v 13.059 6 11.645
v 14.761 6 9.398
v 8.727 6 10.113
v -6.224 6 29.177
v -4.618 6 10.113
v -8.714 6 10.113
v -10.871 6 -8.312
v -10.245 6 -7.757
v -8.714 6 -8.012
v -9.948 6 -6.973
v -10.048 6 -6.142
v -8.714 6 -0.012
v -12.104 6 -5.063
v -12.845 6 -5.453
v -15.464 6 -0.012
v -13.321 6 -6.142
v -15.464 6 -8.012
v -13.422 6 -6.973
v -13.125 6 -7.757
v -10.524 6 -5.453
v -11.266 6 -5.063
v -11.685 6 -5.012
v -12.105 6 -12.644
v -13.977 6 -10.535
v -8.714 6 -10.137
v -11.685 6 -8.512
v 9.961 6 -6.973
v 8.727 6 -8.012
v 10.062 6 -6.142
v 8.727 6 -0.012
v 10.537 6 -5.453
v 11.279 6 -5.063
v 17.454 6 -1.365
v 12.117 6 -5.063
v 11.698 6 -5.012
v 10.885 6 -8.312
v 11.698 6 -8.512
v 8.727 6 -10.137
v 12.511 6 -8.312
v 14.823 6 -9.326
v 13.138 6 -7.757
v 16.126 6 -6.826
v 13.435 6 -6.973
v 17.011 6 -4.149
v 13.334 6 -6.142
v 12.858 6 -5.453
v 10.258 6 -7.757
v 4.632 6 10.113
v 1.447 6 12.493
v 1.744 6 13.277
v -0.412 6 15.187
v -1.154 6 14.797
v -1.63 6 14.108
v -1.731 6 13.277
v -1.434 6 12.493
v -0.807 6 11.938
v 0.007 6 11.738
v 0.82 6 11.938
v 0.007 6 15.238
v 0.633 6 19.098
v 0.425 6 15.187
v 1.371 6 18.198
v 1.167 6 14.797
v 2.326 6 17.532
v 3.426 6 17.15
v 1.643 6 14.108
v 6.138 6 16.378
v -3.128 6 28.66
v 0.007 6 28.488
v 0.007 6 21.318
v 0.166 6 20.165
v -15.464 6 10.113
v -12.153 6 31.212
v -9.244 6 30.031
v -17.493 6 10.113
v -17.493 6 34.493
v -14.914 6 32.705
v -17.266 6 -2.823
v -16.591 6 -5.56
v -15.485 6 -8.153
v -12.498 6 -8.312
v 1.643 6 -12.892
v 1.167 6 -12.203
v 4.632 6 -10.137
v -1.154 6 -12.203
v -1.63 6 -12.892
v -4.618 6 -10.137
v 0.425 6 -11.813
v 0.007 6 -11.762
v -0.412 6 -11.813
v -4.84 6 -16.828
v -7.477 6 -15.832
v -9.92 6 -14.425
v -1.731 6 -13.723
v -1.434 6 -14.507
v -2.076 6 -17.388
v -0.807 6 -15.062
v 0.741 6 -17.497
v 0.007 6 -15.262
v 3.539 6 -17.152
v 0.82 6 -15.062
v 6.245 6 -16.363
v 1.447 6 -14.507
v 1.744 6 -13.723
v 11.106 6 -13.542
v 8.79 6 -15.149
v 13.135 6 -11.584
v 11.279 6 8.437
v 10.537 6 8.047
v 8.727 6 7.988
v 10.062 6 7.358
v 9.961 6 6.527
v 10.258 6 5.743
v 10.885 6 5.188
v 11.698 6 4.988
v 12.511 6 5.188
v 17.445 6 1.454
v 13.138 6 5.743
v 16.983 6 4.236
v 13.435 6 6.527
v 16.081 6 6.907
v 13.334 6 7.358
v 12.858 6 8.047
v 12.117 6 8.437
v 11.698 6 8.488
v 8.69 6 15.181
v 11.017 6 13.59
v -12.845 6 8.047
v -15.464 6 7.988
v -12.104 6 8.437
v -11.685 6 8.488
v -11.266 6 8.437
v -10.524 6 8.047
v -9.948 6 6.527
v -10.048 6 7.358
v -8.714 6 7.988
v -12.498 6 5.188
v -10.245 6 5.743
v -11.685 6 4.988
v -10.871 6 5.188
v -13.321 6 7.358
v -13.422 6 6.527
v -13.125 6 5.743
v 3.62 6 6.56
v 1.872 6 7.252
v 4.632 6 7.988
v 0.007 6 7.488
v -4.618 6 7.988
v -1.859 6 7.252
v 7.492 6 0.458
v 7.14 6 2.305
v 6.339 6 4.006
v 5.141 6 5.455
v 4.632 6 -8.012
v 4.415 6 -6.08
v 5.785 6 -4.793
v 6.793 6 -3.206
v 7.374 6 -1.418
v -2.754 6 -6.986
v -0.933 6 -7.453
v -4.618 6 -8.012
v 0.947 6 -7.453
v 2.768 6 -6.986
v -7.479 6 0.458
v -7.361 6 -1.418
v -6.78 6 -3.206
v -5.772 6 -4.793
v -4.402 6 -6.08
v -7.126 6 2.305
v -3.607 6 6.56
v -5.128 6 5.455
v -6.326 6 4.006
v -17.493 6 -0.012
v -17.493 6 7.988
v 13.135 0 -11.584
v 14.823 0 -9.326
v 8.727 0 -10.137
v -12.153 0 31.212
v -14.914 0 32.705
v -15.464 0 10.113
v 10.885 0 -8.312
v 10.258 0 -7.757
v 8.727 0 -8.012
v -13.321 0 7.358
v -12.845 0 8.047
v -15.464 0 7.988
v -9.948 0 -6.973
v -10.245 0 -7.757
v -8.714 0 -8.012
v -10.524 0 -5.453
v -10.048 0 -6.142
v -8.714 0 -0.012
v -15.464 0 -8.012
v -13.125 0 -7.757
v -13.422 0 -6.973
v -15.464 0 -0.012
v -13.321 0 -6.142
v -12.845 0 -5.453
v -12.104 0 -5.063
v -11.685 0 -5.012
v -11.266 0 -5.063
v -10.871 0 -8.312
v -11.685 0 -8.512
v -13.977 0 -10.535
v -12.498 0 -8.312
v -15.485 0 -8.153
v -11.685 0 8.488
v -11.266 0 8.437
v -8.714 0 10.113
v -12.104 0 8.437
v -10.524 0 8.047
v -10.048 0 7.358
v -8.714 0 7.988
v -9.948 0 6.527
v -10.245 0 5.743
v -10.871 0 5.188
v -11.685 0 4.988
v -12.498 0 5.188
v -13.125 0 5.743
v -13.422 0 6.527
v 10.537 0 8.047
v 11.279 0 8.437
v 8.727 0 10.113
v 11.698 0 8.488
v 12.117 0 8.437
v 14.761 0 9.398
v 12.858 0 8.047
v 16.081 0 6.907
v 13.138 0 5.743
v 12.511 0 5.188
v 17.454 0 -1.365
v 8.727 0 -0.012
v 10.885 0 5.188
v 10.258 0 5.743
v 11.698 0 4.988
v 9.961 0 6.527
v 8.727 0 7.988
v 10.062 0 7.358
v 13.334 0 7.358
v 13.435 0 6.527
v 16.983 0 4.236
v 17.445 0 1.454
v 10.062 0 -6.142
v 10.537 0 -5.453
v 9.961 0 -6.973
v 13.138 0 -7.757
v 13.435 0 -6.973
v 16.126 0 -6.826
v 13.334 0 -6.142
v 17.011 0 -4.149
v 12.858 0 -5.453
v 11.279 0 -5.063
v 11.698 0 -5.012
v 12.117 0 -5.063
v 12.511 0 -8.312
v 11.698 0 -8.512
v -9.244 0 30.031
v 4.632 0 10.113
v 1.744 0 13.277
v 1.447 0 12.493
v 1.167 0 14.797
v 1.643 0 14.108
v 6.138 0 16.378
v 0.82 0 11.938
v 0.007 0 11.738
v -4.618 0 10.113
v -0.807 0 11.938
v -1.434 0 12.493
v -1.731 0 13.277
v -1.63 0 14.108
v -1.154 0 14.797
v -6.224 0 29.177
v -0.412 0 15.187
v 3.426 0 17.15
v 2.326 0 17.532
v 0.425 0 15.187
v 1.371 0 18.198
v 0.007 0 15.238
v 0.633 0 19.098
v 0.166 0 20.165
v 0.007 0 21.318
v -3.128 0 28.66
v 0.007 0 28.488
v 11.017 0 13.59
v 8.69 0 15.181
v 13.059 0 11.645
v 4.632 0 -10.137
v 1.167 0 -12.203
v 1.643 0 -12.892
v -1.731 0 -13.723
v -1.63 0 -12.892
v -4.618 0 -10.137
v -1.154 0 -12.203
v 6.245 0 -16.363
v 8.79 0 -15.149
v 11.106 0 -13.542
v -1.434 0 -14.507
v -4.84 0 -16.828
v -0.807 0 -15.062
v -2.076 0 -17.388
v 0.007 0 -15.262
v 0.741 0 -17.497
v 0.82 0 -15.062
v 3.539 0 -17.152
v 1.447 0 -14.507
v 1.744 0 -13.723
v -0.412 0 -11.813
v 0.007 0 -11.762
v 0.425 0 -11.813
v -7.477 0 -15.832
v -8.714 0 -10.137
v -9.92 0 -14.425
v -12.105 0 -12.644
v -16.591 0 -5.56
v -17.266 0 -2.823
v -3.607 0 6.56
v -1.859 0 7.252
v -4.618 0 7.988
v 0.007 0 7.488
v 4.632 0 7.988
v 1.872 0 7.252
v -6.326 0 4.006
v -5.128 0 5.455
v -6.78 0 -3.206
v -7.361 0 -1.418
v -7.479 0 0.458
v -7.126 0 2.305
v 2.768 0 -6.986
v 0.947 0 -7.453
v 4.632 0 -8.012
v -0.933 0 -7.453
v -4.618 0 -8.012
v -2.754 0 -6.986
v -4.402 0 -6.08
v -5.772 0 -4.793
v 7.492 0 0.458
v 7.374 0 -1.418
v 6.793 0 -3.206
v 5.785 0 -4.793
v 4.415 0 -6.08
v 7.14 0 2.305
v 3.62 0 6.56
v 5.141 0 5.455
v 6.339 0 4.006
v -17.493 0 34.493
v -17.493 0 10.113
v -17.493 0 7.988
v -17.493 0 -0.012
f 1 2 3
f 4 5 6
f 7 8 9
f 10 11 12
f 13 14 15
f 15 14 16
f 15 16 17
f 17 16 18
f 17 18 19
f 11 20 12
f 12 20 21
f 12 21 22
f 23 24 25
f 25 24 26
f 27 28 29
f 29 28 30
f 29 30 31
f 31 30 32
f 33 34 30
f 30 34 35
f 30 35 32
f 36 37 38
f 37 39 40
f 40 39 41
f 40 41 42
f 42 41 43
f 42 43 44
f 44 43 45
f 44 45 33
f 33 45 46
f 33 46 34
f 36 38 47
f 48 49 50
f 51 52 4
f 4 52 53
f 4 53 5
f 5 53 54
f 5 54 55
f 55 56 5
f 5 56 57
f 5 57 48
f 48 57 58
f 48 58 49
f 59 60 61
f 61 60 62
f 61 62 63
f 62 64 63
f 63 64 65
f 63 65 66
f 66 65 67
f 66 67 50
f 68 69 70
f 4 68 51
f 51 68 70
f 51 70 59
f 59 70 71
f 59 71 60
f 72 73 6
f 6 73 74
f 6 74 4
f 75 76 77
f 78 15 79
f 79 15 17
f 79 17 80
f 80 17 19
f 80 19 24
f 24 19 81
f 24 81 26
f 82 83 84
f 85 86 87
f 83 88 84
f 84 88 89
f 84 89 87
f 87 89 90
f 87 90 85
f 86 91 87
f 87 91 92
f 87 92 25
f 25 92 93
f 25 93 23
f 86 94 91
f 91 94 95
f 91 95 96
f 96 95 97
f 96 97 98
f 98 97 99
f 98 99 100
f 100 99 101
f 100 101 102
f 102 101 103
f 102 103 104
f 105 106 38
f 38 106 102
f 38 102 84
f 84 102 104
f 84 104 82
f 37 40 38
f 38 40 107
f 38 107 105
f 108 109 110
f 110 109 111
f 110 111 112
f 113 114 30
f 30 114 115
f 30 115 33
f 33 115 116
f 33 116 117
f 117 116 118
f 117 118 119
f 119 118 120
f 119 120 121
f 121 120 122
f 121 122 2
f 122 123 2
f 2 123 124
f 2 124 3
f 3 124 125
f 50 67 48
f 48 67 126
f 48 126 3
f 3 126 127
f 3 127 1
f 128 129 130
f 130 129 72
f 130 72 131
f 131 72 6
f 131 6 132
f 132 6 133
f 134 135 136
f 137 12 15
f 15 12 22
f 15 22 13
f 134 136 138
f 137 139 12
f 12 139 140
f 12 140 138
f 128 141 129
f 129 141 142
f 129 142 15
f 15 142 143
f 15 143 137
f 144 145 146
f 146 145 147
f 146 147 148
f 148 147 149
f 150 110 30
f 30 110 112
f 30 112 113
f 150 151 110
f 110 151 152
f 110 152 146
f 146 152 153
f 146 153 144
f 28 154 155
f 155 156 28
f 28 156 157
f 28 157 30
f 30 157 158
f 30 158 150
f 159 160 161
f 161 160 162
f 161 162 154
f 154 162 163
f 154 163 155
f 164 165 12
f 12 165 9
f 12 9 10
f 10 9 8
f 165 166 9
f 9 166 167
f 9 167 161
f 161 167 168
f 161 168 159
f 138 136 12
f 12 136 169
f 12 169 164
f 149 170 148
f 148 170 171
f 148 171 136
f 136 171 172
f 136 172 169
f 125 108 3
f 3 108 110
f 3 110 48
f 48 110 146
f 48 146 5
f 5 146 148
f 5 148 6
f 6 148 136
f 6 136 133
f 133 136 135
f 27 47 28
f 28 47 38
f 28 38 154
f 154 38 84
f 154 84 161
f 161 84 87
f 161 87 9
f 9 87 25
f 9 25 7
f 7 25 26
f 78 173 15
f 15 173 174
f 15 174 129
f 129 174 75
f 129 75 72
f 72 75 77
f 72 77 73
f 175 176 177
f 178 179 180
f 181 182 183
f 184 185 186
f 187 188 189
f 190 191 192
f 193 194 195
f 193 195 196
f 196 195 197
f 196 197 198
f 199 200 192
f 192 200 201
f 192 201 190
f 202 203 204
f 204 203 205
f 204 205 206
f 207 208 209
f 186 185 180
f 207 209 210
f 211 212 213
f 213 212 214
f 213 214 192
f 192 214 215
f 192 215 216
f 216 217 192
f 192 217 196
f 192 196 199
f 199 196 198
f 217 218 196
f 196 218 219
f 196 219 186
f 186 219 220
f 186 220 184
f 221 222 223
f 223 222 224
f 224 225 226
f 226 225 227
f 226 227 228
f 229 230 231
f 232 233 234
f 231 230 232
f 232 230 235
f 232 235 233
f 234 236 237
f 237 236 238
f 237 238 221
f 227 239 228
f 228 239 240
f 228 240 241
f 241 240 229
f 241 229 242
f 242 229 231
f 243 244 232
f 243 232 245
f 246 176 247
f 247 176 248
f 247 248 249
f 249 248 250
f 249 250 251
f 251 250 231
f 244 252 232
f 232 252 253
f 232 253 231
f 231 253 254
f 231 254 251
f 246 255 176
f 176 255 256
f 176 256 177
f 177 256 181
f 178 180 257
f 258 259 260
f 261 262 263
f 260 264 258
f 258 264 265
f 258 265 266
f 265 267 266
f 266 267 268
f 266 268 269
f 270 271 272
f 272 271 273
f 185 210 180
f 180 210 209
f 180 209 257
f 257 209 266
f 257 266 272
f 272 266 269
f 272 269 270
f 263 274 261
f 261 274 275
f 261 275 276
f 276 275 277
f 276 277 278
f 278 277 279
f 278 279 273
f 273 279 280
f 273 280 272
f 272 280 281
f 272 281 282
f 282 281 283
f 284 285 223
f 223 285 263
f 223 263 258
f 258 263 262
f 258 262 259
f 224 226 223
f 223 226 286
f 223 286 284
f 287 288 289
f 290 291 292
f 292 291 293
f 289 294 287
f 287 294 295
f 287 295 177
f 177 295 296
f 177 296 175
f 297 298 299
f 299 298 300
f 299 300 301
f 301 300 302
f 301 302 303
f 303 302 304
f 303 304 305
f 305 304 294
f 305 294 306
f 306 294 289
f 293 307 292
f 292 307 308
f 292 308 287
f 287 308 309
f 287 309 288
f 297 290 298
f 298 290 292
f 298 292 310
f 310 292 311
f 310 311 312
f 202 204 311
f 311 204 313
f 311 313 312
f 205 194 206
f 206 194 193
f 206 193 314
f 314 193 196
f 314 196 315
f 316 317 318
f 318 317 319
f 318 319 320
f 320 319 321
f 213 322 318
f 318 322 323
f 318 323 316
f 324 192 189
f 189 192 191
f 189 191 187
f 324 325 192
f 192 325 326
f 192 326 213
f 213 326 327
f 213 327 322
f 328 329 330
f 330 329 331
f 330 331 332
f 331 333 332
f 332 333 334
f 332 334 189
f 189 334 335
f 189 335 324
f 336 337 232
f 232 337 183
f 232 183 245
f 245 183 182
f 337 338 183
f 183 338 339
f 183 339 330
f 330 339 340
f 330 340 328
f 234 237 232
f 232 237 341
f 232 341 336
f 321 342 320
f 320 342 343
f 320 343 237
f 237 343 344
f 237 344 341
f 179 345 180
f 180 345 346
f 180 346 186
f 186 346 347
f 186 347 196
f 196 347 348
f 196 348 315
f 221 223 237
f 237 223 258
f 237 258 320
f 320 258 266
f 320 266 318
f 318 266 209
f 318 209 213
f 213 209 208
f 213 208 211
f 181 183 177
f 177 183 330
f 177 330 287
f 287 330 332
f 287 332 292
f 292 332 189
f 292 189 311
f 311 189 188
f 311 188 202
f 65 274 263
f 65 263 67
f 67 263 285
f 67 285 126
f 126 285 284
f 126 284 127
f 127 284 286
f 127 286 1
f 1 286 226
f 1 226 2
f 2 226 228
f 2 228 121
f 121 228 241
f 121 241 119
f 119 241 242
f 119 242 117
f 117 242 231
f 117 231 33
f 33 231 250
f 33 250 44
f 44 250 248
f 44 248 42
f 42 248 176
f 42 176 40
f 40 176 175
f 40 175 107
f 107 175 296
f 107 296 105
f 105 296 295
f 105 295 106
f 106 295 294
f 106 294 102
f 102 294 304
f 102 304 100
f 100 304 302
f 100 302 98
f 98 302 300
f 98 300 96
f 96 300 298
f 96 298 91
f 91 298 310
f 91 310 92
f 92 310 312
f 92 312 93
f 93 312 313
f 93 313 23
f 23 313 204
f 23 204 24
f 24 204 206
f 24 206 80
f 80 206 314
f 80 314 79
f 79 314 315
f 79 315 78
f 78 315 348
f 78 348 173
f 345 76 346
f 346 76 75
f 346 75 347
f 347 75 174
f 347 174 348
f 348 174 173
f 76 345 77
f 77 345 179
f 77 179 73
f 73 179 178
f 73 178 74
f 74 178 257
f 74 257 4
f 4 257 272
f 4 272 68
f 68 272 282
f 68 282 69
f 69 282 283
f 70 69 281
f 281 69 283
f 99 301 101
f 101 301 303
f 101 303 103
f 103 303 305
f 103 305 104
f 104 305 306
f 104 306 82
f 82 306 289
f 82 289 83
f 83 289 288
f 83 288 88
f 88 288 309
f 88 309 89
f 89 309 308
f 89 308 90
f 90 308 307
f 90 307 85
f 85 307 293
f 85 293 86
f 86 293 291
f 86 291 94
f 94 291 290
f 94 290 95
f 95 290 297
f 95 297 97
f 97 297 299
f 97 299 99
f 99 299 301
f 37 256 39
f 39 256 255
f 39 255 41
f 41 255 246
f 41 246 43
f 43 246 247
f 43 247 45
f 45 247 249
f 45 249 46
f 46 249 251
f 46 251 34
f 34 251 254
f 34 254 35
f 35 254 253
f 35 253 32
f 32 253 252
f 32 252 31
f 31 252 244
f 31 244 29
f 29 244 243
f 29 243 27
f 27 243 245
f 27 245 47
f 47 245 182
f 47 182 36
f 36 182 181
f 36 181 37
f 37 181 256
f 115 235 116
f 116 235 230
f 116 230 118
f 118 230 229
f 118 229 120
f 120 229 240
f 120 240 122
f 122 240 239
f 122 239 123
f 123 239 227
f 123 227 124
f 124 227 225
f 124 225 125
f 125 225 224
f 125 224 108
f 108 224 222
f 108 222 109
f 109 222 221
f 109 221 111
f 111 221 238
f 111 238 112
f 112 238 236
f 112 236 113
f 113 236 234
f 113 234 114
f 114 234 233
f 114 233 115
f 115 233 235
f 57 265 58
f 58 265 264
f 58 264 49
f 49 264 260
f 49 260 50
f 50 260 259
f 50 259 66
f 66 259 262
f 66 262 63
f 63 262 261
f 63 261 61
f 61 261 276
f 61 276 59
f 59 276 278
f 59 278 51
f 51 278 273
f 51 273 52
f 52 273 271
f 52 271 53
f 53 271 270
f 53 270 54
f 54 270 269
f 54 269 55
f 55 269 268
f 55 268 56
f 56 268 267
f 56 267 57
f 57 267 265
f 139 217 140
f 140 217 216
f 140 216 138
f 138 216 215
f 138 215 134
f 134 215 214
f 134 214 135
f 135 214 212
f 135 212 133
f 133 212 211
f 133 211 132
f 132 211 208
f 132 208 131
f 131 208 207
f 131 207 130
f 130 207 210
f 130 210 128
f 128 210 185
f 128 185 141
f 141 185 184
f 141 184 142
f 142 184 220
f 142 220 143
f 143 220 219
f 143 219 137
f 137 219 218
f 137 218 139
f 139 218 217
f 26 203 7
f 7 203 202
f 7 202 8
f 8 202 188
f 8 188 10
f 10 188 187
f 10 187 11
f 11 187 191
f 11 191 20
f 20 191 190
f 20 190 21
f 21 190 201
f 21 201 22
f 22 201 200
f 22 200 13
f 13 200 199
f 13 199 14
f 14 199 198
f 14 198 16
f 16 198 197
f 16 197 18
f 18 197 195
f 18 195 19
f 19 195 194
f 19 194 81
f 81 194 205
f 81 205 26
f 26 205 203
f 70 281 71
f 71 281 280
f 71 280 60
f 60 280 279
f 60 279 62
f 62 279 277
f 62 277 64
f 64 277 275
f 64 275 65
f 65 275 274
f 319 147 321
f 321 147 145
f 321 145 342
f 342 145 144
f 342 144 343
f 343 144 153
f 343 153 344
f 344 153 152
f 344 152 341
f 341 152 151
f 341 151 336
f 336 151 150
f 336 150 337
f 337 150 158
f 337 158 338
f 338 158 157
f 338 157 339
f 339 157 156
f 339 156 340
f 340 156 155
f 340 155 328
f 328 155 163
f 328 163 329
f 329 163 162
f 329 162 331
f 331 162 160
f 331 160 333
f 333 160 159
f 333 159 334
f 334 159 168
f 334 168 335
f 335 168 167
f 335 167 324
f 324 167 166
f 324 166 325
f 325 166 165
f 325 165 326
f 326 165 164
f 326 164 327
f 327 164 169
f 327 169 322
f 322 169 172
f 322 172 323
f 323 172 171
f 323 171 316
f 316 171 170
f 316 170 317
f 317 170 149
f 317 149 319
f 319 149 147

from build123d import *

# Parameters (mm, degrees)
SKETCH_1_R          = 1.75
EXTRUDE_1_DEPTH     = 6
FILLET_2_R          = 4.25
SKETCH_2_R          = 7.5
CUT_EXTRUDE_1_DEPTH = 10


with BuildPart() as part:
    # 草图1 → 凸台-拉伸1 (new body)
    with BuildSketch(Plane(origin=(0, 0, 0), x_dir=(1, 0, 0), z_dir=(0, 1, 0))):
        with BuildLine():
            Line((-17.5, -34.505556242), (-17.5, 0))
            ThreePointArc((-17.5, 0), (0, 17.5), (17.5, 0))
            ThreePointArc((17.5, 0), (12.374368671, -12.374368671), (0, -17.5))
            Line((0, -17.5), (0, -28.5))
            ThreePointArc((0, -28.5), (-9.250901385, -30.043167405), (-17.5, -34.505556242))
        make_face()
        with Locations((0, 13.5)):
            Circle(SKETCH_1_R, mode=Mode.SUBTRACT)
        with Locations((11.691342951, 6.75)):
            Circle(SKETCH_1_R, mode=Mode.SUBTRACT)
        with Locations((11.691342951, -6.75)):
            Circle(SKETCH_1_R, mode=Mode.SUBTRACT)
        with Locations((0, -13.5)):
            Circle(SKETCH_1_R, mode=Mode.SUBTRACT)
        with Locations((-11.691342951, -6.75)):
            Circle(SKETCH_1_R, mode=Mode.SUBTRACT)
        with Locations((-11.691342951, 6.75)):
            Circle(SKETCH_1_R, mode=Mode.SUBTRACT)
    extrude(amount=EXTRUDE_1_DEPTH)

    # 圆角2
    fillet_2_edges = [part.edges().sort_by_distance(p)[0] for p in [
        (0, 3, 17.5),
    ]]
    fillet(fillet_2_edges, radius=FILLET_2_R)

    # 草图2 → 切除-拉伸1 (cut)
    with BuildSketch(Plane(origin=(0, 6, 0), x_dir=(1, 0, 0), z_dir=(0, 1, 0))):
        Circle(SKETCH_2_R)
    extrude(amount=-CUT_EXTRUDE_1_DEPTH, mode=Mode.SUBTRACT)


solid = part.part
